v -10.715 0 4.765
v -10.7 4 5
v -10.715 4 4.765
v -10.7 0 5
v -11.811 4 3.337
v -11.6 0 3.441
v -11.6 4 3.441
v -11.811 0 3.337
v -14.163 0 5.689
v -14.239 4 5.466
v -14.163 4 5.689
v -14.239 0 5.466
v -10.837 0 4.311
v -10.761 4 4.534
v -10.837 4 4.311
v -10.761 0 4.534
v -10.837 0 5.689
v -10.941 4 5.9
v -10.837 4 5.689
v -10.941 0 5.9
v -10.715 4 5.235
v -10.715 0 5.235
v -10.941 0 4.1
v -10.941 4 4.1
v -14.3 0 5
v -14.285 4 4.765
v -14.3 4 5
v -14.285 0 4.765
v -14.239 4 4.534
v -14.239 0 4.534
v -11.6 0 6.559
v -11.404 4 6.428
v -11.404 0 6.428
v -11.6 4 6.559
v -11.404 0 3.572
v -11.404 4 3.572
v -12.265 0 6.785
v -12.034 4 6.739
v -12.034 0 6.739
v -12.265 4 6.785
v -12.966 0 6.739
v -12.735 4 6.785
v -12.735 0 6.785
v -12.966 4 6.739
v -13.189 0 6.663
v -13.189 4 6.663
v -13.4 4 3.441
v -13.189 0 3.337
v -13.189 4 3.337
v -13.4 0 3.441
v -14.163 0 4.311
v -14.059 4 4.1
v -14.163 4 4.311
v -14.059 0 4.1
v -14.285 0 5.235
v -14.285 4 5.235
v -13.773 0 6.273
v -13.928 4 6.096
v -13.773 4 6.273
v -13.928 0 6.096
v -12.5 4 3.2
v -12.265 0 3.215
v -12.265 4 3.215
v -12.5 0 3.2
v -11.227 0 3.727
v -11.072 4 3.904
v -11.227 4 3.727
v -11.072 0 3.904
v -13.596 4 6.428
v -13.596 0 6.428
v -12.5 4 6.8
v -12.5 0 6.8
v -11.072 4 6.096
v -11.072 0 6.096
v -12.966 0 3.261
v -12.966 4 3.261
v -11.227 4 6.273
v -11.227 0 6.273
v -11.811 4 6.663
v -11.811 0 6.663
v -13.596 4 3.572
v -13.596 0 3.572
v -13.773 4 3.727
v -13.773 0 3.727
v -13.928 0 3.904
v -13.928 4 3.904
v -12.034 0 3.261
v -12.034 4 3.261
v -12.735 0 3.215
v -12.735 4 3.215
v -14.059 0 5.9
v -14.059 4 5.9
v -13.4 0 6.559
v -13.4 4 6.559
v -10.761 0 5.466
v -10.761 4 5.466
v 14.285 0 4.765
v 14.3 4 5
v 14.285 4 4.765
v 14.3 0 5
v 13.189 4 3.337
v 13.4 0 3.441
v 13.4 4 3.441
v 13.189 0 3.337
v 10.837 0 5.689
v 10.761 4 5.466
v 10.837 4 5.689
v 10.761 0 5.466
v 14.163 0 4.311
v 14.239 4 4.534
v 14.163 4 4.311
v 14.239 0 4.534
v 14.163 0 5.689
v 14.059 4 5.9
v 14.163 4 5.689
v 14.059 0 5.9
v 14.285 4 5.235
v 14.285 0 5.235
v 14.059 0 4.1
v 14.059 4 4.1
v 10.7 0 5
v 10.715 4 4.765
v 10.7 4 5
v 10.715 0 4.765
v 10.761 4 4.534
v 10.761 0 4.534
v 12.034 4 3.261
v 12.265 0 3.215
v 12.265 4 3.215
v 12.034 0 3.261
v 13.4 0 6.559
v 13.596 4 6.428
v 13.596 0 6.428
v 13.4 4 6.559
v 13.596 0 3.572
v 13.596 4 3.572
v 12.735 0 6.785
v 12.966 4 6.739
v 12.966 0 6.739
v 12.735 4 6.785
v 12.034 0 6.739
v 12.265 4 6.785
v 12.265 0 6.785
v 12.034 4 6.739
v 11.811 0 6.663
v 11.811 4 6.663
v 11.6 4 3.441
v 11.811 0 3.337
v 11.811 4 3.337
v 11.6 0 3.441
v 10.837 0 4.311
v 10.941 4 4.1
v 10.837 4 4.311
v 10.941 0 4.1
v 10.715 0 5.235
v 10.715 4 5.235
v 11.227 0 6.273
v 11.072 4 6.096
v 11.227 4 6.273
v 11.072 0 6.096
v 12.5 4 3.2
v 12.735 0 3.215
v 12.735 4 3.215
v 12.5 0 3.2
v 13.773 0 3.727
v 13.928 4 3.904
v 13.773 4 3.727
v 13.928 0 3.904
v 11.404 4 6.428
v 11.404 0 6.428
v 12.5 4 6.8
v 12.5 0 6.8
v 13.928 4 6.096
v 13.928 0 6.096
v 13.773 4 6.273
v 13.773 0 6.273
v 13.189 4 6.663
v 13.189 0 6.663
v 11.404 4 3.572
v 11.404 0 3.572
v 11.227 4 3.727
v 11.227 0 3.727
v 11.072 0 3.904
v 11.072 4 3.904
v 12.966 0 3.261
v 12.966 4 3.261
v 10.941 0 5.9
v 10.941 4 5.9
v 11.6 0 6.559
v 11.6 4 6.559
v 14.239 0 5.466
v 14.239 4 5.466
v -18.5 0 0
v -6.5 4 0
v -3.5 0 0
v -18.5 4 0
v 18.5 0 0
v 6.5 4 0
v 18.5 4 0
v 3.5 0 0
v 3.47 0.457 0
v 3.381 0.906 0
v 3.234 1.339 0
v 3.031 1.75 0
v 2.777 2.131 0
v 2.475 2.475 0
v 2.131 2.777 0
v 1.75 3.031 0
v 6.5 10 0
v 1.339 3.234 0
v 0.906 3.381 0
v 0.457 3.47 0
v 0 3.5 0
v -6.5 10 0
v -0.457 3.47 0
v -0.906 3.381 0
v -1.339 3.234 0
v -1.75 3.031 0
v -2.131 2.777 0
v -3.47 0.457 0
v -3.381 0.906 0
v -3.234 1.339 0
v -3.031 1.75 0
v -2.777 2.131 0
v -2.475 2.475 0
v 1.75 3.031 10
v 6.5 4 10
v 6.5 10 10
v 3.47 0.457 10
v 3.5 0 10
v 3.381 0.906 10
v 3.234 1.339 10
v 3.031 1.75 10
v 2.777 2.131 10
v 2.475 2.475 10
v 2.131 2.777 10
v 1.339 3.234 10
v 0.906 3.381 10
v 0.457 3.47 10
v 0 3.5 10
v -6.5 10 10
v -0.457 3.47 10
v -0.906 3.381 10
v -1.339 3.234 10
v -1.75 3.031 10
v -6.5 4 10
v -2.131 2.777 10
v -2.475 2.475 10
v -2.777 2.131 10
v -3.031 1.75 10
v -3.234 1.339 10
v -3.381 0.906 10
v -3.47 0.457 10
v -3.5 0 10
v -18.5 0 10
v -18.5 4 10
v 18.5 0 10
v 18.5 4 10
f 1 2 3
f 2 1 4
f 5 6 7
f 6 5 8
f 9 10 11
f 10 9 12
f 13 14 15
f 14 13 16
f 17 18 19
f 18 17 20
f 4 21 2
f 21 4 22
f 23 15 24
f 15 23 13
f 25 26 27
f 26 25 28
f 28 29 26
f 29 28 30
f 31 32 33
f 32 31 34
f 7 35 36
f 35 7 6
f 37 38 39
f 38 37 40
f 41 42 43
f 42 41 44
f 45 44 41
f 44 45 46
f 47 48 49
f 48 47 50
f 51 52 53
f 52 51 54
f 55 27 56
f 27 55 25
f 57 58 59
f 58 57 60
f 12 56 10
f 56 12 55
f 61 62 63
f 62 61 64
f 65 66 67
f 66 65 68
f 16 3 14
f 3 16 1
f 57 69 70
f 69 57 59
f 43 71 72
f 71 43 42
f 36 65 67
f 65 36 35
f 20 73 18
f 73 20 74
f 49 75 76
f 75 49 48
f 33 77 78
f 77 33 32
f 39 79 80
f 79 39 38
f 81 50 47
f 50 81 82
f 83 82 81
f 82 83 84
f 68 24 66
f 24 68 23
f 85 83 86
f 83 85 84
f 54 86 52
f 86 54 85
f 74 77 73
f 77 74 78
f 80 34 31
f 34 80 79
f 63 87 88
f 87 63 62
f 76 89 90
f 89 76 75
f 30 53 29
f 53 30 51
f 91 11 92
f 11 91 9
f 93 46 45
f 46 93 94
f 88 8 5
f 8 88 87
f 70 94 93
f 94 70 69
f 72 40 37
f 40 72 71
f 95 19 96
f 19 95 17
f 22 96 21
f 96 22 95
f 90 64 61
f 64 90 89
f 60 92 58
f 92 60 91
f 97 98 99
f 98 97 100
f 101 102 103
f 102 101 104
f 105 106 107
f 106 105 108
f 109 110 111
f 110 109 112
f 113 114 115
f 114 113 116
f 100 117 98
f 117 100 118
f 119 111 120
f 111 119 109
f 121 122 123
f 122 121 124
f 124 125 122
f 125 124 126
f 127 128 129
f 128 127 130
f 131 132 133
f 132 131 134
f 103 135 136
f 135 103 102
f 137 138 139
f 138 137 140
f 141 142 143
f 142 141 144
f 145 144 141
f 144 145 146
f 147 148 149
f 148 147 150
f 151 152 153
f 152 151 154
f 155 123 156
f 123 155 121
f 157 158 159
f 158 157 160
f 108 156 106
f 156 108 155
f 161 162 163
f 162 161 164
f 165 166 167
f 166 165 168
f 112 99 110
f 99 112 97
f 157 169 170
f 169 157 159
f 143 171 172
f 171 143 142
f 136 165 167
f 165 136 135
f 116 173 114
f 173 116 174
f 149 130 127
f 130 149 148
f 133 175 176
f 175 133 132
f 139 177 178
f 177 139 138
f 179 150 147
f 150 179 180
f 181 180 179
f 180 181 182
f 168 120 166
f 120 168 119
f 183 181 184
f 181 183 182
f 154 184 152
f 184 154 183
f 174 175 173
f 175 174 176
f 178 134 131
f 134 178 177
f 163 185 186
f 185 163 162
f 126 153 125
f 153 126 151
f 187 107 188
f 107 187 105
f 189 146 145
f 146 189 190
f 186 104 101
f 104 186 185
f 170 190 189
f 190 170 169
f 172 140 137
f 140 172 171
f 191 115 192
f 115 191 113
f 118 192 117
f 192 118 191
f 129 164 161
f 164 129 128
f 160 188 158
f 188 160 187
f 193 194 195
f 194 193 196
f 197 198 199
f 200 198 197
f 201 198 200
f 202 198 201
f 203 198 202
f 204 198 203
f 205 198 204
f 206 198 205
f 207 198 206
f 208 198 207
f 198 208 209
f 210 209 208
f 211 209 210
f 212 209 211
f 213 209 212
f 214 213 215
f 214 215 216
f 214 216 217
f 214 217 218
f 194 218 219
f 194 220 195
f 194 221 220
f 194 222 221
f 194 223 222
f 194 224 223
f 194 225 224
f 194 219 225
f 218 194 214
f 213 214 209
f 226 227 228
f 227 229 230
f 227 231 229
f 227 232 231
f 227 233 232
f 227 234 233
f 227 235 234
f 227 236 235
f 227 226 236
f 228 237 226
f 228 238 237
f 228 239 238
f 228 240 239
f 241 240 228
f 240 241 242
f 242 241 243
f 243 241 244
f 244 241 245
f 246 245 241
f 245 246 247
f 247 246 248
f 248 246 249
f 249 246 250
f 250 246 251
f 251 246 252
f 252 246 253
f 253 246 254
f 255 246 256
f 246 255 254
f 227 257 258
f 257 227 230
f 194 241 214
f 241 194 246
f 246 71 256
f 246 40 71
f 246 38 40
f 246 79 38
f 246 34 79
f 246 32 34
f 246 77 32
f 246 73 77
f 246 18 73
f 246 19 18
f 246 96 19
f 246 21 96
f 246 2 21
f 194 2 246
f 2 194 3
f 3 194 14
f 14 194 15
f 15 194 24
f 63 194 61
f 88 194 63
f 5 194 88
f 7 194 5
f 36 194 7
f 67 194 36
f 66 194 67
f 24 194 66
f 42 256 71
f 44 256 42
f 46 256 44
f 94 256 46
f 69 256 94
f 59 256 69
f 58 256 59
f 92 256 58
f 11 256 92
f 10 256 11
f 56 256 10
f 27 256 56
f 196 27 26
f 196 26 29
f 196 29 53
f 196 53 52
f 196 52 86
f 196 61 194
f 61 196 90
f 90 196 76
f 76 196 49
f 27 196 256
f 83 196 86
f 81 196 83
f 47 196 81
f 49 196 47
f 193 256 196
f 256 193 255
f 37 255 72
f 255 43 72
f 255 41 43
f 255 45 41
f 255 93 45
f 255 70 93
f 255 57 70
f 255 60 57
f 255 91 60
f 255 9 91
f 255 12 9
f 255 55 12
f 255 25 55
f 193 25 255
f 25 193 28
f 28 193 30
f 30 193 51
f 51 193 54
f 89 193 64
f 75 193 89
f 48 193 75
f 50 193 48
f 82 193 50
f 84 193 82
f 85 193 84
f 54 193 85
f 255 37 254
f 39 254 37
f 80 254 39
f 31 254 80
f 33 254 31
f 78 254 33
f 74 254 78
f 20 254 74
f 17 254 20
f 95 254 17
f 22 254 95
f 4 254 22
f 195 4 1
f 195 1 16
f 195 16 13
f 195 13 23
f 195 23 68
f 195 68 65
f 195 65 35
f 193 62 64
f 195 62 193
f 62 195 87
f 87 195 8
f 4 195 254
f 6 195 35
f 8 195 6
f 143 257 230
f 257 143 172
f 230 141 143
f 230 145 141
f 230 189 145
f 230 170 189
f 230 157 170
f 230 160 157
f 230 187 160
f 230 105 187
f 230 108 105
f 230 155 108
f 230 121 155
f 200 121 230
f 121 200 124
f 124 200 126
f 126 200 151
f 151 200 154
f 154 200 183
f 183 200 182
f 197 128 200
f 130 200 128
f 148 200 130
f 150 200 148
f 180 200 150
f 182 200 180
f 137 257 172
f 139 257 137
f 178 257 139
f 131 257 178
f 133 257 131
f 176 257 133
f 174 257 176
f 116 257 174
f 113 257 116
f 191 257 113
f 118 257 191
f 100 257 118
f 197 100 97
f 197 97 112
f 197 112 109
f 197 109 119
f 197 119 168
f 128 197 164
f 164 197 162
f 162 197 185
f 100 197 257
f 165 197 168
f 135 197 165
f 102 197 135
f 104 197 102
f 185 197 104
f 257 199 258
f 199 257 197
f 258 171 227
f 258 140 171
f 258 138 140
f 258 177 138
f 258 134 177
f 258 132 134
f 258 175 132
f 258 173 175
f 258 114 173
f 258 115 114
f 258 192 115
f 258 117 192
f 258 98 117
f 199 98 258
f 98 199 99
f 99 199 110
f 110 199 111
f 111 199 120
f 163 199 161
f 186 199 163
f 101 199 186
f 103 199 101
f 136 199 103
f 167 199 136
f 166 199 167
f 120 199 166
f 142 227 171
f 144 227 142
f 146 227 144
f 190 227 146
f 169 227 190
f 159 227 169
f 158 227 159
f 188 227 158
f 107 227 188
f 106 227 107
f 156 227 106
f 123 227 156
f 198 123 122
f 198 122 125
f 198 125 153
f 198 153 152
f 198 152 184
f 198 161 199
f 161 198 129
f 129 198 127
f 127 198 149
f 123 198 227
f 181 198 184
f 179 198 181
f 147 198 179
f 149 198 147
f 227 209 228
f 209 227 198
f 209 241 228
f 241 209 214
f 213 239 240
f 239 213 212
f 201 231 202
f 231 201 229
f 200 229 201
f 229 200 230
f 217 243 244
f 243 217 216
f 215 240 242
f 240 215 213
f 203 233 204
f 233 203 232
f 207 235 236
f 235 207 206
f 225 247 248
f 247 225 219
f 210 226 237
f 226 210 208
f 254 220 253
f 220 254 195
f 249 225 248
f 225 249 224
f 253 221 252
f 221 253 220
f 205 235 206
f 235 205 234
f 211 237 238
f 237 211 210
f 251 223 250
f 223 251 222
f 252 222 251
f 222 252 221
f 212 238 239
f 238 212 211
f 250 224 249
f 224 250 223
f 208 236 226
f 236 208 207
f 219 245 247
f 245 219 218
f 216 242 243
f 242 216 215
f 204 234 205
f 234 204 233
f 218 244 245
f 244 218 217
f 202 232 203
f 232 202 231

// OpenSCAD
// file: measurements.scad
// BASTION printed parts — shared measurements
// ============================================
// MEASURE YOUR ACTUAL DEVICES WITH CALIPERS and update the PLACEHOLDER
// values before printing anything. Every part file includes this file.
// All dimensions in mm. Device boxes are [length, width, height].

// -- global fit tuning --
fit     = 0.6;   // pocket clearance per side (0.4 tight .. 0.8 loose)
wall    = 3;     // fence/pocket wall thickness
fence_h = 14;    // how tall the pocket fences stand above the tray

// -- devices (PLACEHOLDERS — measure yours) --
mini_pc = [127, 127, 45];   // typical N100 box; measure your unit
router  = [102,  68, 24];   // GL.iNet — measure your model
buck    = [ 66,  46, 26];   // buck-boost converter incl. heatsink
usb_hub = [ 95,  35, 18];   // powered USB hub

// -- deck tray --
deck = [360, 180, 4];       // tray length, width, base thickness
                            // must fit YOUR case interior — measure first

// -- small parts --
pp_cut   = [16.4, 17.0];    // Powerpole PP15/45 pair cutout — verify against
                            // your snapped-together housings before printing
cable_d  = 7;               // cable bundle diameter for cable_clip
bore_d   = 8;               // gland_plug shaft dia — match the wire size your
                            // spare gland is sized to clamp
// main file
// Screw-down saddle clip for wire runs in the foam channels and on the deck.
// Set cable_d in measurements.scad to the bundle diameter; print a batch at
// each size you use. PETG, 3 perimeters, 25% infill, prints without support.

include <measurements.scad>
$fn = 48;

w       = 10;    // clip width along the cable
t       = 3;     // wall thickness
ear     = 12;    // screw-ear length each side
screw_d = 3.6;   // M3 clearance

block_w = cable_d + 2*t;
h       = cable_d + t;

difference() {
    linear_extrude(w)
        union() {
            translate([-block_w/2, 0])        square([block_w, h]);
            translate([-block_w/2 - ear, 0])  square([ear, t + 1]);
            translate([ block_w/2, 0])        square([ear, t + 1]);
        }
    translate([0, 0, -1]) linear_extrude(w + 2) circle(d = cable_d);
    for (s = [-1, 1])
        translate([s*(block_w/2 + ear/2), -1, w/2])
            rotate([-90, 0, 0])
                cylinder(h = t + 3, d = screw_d);
}
